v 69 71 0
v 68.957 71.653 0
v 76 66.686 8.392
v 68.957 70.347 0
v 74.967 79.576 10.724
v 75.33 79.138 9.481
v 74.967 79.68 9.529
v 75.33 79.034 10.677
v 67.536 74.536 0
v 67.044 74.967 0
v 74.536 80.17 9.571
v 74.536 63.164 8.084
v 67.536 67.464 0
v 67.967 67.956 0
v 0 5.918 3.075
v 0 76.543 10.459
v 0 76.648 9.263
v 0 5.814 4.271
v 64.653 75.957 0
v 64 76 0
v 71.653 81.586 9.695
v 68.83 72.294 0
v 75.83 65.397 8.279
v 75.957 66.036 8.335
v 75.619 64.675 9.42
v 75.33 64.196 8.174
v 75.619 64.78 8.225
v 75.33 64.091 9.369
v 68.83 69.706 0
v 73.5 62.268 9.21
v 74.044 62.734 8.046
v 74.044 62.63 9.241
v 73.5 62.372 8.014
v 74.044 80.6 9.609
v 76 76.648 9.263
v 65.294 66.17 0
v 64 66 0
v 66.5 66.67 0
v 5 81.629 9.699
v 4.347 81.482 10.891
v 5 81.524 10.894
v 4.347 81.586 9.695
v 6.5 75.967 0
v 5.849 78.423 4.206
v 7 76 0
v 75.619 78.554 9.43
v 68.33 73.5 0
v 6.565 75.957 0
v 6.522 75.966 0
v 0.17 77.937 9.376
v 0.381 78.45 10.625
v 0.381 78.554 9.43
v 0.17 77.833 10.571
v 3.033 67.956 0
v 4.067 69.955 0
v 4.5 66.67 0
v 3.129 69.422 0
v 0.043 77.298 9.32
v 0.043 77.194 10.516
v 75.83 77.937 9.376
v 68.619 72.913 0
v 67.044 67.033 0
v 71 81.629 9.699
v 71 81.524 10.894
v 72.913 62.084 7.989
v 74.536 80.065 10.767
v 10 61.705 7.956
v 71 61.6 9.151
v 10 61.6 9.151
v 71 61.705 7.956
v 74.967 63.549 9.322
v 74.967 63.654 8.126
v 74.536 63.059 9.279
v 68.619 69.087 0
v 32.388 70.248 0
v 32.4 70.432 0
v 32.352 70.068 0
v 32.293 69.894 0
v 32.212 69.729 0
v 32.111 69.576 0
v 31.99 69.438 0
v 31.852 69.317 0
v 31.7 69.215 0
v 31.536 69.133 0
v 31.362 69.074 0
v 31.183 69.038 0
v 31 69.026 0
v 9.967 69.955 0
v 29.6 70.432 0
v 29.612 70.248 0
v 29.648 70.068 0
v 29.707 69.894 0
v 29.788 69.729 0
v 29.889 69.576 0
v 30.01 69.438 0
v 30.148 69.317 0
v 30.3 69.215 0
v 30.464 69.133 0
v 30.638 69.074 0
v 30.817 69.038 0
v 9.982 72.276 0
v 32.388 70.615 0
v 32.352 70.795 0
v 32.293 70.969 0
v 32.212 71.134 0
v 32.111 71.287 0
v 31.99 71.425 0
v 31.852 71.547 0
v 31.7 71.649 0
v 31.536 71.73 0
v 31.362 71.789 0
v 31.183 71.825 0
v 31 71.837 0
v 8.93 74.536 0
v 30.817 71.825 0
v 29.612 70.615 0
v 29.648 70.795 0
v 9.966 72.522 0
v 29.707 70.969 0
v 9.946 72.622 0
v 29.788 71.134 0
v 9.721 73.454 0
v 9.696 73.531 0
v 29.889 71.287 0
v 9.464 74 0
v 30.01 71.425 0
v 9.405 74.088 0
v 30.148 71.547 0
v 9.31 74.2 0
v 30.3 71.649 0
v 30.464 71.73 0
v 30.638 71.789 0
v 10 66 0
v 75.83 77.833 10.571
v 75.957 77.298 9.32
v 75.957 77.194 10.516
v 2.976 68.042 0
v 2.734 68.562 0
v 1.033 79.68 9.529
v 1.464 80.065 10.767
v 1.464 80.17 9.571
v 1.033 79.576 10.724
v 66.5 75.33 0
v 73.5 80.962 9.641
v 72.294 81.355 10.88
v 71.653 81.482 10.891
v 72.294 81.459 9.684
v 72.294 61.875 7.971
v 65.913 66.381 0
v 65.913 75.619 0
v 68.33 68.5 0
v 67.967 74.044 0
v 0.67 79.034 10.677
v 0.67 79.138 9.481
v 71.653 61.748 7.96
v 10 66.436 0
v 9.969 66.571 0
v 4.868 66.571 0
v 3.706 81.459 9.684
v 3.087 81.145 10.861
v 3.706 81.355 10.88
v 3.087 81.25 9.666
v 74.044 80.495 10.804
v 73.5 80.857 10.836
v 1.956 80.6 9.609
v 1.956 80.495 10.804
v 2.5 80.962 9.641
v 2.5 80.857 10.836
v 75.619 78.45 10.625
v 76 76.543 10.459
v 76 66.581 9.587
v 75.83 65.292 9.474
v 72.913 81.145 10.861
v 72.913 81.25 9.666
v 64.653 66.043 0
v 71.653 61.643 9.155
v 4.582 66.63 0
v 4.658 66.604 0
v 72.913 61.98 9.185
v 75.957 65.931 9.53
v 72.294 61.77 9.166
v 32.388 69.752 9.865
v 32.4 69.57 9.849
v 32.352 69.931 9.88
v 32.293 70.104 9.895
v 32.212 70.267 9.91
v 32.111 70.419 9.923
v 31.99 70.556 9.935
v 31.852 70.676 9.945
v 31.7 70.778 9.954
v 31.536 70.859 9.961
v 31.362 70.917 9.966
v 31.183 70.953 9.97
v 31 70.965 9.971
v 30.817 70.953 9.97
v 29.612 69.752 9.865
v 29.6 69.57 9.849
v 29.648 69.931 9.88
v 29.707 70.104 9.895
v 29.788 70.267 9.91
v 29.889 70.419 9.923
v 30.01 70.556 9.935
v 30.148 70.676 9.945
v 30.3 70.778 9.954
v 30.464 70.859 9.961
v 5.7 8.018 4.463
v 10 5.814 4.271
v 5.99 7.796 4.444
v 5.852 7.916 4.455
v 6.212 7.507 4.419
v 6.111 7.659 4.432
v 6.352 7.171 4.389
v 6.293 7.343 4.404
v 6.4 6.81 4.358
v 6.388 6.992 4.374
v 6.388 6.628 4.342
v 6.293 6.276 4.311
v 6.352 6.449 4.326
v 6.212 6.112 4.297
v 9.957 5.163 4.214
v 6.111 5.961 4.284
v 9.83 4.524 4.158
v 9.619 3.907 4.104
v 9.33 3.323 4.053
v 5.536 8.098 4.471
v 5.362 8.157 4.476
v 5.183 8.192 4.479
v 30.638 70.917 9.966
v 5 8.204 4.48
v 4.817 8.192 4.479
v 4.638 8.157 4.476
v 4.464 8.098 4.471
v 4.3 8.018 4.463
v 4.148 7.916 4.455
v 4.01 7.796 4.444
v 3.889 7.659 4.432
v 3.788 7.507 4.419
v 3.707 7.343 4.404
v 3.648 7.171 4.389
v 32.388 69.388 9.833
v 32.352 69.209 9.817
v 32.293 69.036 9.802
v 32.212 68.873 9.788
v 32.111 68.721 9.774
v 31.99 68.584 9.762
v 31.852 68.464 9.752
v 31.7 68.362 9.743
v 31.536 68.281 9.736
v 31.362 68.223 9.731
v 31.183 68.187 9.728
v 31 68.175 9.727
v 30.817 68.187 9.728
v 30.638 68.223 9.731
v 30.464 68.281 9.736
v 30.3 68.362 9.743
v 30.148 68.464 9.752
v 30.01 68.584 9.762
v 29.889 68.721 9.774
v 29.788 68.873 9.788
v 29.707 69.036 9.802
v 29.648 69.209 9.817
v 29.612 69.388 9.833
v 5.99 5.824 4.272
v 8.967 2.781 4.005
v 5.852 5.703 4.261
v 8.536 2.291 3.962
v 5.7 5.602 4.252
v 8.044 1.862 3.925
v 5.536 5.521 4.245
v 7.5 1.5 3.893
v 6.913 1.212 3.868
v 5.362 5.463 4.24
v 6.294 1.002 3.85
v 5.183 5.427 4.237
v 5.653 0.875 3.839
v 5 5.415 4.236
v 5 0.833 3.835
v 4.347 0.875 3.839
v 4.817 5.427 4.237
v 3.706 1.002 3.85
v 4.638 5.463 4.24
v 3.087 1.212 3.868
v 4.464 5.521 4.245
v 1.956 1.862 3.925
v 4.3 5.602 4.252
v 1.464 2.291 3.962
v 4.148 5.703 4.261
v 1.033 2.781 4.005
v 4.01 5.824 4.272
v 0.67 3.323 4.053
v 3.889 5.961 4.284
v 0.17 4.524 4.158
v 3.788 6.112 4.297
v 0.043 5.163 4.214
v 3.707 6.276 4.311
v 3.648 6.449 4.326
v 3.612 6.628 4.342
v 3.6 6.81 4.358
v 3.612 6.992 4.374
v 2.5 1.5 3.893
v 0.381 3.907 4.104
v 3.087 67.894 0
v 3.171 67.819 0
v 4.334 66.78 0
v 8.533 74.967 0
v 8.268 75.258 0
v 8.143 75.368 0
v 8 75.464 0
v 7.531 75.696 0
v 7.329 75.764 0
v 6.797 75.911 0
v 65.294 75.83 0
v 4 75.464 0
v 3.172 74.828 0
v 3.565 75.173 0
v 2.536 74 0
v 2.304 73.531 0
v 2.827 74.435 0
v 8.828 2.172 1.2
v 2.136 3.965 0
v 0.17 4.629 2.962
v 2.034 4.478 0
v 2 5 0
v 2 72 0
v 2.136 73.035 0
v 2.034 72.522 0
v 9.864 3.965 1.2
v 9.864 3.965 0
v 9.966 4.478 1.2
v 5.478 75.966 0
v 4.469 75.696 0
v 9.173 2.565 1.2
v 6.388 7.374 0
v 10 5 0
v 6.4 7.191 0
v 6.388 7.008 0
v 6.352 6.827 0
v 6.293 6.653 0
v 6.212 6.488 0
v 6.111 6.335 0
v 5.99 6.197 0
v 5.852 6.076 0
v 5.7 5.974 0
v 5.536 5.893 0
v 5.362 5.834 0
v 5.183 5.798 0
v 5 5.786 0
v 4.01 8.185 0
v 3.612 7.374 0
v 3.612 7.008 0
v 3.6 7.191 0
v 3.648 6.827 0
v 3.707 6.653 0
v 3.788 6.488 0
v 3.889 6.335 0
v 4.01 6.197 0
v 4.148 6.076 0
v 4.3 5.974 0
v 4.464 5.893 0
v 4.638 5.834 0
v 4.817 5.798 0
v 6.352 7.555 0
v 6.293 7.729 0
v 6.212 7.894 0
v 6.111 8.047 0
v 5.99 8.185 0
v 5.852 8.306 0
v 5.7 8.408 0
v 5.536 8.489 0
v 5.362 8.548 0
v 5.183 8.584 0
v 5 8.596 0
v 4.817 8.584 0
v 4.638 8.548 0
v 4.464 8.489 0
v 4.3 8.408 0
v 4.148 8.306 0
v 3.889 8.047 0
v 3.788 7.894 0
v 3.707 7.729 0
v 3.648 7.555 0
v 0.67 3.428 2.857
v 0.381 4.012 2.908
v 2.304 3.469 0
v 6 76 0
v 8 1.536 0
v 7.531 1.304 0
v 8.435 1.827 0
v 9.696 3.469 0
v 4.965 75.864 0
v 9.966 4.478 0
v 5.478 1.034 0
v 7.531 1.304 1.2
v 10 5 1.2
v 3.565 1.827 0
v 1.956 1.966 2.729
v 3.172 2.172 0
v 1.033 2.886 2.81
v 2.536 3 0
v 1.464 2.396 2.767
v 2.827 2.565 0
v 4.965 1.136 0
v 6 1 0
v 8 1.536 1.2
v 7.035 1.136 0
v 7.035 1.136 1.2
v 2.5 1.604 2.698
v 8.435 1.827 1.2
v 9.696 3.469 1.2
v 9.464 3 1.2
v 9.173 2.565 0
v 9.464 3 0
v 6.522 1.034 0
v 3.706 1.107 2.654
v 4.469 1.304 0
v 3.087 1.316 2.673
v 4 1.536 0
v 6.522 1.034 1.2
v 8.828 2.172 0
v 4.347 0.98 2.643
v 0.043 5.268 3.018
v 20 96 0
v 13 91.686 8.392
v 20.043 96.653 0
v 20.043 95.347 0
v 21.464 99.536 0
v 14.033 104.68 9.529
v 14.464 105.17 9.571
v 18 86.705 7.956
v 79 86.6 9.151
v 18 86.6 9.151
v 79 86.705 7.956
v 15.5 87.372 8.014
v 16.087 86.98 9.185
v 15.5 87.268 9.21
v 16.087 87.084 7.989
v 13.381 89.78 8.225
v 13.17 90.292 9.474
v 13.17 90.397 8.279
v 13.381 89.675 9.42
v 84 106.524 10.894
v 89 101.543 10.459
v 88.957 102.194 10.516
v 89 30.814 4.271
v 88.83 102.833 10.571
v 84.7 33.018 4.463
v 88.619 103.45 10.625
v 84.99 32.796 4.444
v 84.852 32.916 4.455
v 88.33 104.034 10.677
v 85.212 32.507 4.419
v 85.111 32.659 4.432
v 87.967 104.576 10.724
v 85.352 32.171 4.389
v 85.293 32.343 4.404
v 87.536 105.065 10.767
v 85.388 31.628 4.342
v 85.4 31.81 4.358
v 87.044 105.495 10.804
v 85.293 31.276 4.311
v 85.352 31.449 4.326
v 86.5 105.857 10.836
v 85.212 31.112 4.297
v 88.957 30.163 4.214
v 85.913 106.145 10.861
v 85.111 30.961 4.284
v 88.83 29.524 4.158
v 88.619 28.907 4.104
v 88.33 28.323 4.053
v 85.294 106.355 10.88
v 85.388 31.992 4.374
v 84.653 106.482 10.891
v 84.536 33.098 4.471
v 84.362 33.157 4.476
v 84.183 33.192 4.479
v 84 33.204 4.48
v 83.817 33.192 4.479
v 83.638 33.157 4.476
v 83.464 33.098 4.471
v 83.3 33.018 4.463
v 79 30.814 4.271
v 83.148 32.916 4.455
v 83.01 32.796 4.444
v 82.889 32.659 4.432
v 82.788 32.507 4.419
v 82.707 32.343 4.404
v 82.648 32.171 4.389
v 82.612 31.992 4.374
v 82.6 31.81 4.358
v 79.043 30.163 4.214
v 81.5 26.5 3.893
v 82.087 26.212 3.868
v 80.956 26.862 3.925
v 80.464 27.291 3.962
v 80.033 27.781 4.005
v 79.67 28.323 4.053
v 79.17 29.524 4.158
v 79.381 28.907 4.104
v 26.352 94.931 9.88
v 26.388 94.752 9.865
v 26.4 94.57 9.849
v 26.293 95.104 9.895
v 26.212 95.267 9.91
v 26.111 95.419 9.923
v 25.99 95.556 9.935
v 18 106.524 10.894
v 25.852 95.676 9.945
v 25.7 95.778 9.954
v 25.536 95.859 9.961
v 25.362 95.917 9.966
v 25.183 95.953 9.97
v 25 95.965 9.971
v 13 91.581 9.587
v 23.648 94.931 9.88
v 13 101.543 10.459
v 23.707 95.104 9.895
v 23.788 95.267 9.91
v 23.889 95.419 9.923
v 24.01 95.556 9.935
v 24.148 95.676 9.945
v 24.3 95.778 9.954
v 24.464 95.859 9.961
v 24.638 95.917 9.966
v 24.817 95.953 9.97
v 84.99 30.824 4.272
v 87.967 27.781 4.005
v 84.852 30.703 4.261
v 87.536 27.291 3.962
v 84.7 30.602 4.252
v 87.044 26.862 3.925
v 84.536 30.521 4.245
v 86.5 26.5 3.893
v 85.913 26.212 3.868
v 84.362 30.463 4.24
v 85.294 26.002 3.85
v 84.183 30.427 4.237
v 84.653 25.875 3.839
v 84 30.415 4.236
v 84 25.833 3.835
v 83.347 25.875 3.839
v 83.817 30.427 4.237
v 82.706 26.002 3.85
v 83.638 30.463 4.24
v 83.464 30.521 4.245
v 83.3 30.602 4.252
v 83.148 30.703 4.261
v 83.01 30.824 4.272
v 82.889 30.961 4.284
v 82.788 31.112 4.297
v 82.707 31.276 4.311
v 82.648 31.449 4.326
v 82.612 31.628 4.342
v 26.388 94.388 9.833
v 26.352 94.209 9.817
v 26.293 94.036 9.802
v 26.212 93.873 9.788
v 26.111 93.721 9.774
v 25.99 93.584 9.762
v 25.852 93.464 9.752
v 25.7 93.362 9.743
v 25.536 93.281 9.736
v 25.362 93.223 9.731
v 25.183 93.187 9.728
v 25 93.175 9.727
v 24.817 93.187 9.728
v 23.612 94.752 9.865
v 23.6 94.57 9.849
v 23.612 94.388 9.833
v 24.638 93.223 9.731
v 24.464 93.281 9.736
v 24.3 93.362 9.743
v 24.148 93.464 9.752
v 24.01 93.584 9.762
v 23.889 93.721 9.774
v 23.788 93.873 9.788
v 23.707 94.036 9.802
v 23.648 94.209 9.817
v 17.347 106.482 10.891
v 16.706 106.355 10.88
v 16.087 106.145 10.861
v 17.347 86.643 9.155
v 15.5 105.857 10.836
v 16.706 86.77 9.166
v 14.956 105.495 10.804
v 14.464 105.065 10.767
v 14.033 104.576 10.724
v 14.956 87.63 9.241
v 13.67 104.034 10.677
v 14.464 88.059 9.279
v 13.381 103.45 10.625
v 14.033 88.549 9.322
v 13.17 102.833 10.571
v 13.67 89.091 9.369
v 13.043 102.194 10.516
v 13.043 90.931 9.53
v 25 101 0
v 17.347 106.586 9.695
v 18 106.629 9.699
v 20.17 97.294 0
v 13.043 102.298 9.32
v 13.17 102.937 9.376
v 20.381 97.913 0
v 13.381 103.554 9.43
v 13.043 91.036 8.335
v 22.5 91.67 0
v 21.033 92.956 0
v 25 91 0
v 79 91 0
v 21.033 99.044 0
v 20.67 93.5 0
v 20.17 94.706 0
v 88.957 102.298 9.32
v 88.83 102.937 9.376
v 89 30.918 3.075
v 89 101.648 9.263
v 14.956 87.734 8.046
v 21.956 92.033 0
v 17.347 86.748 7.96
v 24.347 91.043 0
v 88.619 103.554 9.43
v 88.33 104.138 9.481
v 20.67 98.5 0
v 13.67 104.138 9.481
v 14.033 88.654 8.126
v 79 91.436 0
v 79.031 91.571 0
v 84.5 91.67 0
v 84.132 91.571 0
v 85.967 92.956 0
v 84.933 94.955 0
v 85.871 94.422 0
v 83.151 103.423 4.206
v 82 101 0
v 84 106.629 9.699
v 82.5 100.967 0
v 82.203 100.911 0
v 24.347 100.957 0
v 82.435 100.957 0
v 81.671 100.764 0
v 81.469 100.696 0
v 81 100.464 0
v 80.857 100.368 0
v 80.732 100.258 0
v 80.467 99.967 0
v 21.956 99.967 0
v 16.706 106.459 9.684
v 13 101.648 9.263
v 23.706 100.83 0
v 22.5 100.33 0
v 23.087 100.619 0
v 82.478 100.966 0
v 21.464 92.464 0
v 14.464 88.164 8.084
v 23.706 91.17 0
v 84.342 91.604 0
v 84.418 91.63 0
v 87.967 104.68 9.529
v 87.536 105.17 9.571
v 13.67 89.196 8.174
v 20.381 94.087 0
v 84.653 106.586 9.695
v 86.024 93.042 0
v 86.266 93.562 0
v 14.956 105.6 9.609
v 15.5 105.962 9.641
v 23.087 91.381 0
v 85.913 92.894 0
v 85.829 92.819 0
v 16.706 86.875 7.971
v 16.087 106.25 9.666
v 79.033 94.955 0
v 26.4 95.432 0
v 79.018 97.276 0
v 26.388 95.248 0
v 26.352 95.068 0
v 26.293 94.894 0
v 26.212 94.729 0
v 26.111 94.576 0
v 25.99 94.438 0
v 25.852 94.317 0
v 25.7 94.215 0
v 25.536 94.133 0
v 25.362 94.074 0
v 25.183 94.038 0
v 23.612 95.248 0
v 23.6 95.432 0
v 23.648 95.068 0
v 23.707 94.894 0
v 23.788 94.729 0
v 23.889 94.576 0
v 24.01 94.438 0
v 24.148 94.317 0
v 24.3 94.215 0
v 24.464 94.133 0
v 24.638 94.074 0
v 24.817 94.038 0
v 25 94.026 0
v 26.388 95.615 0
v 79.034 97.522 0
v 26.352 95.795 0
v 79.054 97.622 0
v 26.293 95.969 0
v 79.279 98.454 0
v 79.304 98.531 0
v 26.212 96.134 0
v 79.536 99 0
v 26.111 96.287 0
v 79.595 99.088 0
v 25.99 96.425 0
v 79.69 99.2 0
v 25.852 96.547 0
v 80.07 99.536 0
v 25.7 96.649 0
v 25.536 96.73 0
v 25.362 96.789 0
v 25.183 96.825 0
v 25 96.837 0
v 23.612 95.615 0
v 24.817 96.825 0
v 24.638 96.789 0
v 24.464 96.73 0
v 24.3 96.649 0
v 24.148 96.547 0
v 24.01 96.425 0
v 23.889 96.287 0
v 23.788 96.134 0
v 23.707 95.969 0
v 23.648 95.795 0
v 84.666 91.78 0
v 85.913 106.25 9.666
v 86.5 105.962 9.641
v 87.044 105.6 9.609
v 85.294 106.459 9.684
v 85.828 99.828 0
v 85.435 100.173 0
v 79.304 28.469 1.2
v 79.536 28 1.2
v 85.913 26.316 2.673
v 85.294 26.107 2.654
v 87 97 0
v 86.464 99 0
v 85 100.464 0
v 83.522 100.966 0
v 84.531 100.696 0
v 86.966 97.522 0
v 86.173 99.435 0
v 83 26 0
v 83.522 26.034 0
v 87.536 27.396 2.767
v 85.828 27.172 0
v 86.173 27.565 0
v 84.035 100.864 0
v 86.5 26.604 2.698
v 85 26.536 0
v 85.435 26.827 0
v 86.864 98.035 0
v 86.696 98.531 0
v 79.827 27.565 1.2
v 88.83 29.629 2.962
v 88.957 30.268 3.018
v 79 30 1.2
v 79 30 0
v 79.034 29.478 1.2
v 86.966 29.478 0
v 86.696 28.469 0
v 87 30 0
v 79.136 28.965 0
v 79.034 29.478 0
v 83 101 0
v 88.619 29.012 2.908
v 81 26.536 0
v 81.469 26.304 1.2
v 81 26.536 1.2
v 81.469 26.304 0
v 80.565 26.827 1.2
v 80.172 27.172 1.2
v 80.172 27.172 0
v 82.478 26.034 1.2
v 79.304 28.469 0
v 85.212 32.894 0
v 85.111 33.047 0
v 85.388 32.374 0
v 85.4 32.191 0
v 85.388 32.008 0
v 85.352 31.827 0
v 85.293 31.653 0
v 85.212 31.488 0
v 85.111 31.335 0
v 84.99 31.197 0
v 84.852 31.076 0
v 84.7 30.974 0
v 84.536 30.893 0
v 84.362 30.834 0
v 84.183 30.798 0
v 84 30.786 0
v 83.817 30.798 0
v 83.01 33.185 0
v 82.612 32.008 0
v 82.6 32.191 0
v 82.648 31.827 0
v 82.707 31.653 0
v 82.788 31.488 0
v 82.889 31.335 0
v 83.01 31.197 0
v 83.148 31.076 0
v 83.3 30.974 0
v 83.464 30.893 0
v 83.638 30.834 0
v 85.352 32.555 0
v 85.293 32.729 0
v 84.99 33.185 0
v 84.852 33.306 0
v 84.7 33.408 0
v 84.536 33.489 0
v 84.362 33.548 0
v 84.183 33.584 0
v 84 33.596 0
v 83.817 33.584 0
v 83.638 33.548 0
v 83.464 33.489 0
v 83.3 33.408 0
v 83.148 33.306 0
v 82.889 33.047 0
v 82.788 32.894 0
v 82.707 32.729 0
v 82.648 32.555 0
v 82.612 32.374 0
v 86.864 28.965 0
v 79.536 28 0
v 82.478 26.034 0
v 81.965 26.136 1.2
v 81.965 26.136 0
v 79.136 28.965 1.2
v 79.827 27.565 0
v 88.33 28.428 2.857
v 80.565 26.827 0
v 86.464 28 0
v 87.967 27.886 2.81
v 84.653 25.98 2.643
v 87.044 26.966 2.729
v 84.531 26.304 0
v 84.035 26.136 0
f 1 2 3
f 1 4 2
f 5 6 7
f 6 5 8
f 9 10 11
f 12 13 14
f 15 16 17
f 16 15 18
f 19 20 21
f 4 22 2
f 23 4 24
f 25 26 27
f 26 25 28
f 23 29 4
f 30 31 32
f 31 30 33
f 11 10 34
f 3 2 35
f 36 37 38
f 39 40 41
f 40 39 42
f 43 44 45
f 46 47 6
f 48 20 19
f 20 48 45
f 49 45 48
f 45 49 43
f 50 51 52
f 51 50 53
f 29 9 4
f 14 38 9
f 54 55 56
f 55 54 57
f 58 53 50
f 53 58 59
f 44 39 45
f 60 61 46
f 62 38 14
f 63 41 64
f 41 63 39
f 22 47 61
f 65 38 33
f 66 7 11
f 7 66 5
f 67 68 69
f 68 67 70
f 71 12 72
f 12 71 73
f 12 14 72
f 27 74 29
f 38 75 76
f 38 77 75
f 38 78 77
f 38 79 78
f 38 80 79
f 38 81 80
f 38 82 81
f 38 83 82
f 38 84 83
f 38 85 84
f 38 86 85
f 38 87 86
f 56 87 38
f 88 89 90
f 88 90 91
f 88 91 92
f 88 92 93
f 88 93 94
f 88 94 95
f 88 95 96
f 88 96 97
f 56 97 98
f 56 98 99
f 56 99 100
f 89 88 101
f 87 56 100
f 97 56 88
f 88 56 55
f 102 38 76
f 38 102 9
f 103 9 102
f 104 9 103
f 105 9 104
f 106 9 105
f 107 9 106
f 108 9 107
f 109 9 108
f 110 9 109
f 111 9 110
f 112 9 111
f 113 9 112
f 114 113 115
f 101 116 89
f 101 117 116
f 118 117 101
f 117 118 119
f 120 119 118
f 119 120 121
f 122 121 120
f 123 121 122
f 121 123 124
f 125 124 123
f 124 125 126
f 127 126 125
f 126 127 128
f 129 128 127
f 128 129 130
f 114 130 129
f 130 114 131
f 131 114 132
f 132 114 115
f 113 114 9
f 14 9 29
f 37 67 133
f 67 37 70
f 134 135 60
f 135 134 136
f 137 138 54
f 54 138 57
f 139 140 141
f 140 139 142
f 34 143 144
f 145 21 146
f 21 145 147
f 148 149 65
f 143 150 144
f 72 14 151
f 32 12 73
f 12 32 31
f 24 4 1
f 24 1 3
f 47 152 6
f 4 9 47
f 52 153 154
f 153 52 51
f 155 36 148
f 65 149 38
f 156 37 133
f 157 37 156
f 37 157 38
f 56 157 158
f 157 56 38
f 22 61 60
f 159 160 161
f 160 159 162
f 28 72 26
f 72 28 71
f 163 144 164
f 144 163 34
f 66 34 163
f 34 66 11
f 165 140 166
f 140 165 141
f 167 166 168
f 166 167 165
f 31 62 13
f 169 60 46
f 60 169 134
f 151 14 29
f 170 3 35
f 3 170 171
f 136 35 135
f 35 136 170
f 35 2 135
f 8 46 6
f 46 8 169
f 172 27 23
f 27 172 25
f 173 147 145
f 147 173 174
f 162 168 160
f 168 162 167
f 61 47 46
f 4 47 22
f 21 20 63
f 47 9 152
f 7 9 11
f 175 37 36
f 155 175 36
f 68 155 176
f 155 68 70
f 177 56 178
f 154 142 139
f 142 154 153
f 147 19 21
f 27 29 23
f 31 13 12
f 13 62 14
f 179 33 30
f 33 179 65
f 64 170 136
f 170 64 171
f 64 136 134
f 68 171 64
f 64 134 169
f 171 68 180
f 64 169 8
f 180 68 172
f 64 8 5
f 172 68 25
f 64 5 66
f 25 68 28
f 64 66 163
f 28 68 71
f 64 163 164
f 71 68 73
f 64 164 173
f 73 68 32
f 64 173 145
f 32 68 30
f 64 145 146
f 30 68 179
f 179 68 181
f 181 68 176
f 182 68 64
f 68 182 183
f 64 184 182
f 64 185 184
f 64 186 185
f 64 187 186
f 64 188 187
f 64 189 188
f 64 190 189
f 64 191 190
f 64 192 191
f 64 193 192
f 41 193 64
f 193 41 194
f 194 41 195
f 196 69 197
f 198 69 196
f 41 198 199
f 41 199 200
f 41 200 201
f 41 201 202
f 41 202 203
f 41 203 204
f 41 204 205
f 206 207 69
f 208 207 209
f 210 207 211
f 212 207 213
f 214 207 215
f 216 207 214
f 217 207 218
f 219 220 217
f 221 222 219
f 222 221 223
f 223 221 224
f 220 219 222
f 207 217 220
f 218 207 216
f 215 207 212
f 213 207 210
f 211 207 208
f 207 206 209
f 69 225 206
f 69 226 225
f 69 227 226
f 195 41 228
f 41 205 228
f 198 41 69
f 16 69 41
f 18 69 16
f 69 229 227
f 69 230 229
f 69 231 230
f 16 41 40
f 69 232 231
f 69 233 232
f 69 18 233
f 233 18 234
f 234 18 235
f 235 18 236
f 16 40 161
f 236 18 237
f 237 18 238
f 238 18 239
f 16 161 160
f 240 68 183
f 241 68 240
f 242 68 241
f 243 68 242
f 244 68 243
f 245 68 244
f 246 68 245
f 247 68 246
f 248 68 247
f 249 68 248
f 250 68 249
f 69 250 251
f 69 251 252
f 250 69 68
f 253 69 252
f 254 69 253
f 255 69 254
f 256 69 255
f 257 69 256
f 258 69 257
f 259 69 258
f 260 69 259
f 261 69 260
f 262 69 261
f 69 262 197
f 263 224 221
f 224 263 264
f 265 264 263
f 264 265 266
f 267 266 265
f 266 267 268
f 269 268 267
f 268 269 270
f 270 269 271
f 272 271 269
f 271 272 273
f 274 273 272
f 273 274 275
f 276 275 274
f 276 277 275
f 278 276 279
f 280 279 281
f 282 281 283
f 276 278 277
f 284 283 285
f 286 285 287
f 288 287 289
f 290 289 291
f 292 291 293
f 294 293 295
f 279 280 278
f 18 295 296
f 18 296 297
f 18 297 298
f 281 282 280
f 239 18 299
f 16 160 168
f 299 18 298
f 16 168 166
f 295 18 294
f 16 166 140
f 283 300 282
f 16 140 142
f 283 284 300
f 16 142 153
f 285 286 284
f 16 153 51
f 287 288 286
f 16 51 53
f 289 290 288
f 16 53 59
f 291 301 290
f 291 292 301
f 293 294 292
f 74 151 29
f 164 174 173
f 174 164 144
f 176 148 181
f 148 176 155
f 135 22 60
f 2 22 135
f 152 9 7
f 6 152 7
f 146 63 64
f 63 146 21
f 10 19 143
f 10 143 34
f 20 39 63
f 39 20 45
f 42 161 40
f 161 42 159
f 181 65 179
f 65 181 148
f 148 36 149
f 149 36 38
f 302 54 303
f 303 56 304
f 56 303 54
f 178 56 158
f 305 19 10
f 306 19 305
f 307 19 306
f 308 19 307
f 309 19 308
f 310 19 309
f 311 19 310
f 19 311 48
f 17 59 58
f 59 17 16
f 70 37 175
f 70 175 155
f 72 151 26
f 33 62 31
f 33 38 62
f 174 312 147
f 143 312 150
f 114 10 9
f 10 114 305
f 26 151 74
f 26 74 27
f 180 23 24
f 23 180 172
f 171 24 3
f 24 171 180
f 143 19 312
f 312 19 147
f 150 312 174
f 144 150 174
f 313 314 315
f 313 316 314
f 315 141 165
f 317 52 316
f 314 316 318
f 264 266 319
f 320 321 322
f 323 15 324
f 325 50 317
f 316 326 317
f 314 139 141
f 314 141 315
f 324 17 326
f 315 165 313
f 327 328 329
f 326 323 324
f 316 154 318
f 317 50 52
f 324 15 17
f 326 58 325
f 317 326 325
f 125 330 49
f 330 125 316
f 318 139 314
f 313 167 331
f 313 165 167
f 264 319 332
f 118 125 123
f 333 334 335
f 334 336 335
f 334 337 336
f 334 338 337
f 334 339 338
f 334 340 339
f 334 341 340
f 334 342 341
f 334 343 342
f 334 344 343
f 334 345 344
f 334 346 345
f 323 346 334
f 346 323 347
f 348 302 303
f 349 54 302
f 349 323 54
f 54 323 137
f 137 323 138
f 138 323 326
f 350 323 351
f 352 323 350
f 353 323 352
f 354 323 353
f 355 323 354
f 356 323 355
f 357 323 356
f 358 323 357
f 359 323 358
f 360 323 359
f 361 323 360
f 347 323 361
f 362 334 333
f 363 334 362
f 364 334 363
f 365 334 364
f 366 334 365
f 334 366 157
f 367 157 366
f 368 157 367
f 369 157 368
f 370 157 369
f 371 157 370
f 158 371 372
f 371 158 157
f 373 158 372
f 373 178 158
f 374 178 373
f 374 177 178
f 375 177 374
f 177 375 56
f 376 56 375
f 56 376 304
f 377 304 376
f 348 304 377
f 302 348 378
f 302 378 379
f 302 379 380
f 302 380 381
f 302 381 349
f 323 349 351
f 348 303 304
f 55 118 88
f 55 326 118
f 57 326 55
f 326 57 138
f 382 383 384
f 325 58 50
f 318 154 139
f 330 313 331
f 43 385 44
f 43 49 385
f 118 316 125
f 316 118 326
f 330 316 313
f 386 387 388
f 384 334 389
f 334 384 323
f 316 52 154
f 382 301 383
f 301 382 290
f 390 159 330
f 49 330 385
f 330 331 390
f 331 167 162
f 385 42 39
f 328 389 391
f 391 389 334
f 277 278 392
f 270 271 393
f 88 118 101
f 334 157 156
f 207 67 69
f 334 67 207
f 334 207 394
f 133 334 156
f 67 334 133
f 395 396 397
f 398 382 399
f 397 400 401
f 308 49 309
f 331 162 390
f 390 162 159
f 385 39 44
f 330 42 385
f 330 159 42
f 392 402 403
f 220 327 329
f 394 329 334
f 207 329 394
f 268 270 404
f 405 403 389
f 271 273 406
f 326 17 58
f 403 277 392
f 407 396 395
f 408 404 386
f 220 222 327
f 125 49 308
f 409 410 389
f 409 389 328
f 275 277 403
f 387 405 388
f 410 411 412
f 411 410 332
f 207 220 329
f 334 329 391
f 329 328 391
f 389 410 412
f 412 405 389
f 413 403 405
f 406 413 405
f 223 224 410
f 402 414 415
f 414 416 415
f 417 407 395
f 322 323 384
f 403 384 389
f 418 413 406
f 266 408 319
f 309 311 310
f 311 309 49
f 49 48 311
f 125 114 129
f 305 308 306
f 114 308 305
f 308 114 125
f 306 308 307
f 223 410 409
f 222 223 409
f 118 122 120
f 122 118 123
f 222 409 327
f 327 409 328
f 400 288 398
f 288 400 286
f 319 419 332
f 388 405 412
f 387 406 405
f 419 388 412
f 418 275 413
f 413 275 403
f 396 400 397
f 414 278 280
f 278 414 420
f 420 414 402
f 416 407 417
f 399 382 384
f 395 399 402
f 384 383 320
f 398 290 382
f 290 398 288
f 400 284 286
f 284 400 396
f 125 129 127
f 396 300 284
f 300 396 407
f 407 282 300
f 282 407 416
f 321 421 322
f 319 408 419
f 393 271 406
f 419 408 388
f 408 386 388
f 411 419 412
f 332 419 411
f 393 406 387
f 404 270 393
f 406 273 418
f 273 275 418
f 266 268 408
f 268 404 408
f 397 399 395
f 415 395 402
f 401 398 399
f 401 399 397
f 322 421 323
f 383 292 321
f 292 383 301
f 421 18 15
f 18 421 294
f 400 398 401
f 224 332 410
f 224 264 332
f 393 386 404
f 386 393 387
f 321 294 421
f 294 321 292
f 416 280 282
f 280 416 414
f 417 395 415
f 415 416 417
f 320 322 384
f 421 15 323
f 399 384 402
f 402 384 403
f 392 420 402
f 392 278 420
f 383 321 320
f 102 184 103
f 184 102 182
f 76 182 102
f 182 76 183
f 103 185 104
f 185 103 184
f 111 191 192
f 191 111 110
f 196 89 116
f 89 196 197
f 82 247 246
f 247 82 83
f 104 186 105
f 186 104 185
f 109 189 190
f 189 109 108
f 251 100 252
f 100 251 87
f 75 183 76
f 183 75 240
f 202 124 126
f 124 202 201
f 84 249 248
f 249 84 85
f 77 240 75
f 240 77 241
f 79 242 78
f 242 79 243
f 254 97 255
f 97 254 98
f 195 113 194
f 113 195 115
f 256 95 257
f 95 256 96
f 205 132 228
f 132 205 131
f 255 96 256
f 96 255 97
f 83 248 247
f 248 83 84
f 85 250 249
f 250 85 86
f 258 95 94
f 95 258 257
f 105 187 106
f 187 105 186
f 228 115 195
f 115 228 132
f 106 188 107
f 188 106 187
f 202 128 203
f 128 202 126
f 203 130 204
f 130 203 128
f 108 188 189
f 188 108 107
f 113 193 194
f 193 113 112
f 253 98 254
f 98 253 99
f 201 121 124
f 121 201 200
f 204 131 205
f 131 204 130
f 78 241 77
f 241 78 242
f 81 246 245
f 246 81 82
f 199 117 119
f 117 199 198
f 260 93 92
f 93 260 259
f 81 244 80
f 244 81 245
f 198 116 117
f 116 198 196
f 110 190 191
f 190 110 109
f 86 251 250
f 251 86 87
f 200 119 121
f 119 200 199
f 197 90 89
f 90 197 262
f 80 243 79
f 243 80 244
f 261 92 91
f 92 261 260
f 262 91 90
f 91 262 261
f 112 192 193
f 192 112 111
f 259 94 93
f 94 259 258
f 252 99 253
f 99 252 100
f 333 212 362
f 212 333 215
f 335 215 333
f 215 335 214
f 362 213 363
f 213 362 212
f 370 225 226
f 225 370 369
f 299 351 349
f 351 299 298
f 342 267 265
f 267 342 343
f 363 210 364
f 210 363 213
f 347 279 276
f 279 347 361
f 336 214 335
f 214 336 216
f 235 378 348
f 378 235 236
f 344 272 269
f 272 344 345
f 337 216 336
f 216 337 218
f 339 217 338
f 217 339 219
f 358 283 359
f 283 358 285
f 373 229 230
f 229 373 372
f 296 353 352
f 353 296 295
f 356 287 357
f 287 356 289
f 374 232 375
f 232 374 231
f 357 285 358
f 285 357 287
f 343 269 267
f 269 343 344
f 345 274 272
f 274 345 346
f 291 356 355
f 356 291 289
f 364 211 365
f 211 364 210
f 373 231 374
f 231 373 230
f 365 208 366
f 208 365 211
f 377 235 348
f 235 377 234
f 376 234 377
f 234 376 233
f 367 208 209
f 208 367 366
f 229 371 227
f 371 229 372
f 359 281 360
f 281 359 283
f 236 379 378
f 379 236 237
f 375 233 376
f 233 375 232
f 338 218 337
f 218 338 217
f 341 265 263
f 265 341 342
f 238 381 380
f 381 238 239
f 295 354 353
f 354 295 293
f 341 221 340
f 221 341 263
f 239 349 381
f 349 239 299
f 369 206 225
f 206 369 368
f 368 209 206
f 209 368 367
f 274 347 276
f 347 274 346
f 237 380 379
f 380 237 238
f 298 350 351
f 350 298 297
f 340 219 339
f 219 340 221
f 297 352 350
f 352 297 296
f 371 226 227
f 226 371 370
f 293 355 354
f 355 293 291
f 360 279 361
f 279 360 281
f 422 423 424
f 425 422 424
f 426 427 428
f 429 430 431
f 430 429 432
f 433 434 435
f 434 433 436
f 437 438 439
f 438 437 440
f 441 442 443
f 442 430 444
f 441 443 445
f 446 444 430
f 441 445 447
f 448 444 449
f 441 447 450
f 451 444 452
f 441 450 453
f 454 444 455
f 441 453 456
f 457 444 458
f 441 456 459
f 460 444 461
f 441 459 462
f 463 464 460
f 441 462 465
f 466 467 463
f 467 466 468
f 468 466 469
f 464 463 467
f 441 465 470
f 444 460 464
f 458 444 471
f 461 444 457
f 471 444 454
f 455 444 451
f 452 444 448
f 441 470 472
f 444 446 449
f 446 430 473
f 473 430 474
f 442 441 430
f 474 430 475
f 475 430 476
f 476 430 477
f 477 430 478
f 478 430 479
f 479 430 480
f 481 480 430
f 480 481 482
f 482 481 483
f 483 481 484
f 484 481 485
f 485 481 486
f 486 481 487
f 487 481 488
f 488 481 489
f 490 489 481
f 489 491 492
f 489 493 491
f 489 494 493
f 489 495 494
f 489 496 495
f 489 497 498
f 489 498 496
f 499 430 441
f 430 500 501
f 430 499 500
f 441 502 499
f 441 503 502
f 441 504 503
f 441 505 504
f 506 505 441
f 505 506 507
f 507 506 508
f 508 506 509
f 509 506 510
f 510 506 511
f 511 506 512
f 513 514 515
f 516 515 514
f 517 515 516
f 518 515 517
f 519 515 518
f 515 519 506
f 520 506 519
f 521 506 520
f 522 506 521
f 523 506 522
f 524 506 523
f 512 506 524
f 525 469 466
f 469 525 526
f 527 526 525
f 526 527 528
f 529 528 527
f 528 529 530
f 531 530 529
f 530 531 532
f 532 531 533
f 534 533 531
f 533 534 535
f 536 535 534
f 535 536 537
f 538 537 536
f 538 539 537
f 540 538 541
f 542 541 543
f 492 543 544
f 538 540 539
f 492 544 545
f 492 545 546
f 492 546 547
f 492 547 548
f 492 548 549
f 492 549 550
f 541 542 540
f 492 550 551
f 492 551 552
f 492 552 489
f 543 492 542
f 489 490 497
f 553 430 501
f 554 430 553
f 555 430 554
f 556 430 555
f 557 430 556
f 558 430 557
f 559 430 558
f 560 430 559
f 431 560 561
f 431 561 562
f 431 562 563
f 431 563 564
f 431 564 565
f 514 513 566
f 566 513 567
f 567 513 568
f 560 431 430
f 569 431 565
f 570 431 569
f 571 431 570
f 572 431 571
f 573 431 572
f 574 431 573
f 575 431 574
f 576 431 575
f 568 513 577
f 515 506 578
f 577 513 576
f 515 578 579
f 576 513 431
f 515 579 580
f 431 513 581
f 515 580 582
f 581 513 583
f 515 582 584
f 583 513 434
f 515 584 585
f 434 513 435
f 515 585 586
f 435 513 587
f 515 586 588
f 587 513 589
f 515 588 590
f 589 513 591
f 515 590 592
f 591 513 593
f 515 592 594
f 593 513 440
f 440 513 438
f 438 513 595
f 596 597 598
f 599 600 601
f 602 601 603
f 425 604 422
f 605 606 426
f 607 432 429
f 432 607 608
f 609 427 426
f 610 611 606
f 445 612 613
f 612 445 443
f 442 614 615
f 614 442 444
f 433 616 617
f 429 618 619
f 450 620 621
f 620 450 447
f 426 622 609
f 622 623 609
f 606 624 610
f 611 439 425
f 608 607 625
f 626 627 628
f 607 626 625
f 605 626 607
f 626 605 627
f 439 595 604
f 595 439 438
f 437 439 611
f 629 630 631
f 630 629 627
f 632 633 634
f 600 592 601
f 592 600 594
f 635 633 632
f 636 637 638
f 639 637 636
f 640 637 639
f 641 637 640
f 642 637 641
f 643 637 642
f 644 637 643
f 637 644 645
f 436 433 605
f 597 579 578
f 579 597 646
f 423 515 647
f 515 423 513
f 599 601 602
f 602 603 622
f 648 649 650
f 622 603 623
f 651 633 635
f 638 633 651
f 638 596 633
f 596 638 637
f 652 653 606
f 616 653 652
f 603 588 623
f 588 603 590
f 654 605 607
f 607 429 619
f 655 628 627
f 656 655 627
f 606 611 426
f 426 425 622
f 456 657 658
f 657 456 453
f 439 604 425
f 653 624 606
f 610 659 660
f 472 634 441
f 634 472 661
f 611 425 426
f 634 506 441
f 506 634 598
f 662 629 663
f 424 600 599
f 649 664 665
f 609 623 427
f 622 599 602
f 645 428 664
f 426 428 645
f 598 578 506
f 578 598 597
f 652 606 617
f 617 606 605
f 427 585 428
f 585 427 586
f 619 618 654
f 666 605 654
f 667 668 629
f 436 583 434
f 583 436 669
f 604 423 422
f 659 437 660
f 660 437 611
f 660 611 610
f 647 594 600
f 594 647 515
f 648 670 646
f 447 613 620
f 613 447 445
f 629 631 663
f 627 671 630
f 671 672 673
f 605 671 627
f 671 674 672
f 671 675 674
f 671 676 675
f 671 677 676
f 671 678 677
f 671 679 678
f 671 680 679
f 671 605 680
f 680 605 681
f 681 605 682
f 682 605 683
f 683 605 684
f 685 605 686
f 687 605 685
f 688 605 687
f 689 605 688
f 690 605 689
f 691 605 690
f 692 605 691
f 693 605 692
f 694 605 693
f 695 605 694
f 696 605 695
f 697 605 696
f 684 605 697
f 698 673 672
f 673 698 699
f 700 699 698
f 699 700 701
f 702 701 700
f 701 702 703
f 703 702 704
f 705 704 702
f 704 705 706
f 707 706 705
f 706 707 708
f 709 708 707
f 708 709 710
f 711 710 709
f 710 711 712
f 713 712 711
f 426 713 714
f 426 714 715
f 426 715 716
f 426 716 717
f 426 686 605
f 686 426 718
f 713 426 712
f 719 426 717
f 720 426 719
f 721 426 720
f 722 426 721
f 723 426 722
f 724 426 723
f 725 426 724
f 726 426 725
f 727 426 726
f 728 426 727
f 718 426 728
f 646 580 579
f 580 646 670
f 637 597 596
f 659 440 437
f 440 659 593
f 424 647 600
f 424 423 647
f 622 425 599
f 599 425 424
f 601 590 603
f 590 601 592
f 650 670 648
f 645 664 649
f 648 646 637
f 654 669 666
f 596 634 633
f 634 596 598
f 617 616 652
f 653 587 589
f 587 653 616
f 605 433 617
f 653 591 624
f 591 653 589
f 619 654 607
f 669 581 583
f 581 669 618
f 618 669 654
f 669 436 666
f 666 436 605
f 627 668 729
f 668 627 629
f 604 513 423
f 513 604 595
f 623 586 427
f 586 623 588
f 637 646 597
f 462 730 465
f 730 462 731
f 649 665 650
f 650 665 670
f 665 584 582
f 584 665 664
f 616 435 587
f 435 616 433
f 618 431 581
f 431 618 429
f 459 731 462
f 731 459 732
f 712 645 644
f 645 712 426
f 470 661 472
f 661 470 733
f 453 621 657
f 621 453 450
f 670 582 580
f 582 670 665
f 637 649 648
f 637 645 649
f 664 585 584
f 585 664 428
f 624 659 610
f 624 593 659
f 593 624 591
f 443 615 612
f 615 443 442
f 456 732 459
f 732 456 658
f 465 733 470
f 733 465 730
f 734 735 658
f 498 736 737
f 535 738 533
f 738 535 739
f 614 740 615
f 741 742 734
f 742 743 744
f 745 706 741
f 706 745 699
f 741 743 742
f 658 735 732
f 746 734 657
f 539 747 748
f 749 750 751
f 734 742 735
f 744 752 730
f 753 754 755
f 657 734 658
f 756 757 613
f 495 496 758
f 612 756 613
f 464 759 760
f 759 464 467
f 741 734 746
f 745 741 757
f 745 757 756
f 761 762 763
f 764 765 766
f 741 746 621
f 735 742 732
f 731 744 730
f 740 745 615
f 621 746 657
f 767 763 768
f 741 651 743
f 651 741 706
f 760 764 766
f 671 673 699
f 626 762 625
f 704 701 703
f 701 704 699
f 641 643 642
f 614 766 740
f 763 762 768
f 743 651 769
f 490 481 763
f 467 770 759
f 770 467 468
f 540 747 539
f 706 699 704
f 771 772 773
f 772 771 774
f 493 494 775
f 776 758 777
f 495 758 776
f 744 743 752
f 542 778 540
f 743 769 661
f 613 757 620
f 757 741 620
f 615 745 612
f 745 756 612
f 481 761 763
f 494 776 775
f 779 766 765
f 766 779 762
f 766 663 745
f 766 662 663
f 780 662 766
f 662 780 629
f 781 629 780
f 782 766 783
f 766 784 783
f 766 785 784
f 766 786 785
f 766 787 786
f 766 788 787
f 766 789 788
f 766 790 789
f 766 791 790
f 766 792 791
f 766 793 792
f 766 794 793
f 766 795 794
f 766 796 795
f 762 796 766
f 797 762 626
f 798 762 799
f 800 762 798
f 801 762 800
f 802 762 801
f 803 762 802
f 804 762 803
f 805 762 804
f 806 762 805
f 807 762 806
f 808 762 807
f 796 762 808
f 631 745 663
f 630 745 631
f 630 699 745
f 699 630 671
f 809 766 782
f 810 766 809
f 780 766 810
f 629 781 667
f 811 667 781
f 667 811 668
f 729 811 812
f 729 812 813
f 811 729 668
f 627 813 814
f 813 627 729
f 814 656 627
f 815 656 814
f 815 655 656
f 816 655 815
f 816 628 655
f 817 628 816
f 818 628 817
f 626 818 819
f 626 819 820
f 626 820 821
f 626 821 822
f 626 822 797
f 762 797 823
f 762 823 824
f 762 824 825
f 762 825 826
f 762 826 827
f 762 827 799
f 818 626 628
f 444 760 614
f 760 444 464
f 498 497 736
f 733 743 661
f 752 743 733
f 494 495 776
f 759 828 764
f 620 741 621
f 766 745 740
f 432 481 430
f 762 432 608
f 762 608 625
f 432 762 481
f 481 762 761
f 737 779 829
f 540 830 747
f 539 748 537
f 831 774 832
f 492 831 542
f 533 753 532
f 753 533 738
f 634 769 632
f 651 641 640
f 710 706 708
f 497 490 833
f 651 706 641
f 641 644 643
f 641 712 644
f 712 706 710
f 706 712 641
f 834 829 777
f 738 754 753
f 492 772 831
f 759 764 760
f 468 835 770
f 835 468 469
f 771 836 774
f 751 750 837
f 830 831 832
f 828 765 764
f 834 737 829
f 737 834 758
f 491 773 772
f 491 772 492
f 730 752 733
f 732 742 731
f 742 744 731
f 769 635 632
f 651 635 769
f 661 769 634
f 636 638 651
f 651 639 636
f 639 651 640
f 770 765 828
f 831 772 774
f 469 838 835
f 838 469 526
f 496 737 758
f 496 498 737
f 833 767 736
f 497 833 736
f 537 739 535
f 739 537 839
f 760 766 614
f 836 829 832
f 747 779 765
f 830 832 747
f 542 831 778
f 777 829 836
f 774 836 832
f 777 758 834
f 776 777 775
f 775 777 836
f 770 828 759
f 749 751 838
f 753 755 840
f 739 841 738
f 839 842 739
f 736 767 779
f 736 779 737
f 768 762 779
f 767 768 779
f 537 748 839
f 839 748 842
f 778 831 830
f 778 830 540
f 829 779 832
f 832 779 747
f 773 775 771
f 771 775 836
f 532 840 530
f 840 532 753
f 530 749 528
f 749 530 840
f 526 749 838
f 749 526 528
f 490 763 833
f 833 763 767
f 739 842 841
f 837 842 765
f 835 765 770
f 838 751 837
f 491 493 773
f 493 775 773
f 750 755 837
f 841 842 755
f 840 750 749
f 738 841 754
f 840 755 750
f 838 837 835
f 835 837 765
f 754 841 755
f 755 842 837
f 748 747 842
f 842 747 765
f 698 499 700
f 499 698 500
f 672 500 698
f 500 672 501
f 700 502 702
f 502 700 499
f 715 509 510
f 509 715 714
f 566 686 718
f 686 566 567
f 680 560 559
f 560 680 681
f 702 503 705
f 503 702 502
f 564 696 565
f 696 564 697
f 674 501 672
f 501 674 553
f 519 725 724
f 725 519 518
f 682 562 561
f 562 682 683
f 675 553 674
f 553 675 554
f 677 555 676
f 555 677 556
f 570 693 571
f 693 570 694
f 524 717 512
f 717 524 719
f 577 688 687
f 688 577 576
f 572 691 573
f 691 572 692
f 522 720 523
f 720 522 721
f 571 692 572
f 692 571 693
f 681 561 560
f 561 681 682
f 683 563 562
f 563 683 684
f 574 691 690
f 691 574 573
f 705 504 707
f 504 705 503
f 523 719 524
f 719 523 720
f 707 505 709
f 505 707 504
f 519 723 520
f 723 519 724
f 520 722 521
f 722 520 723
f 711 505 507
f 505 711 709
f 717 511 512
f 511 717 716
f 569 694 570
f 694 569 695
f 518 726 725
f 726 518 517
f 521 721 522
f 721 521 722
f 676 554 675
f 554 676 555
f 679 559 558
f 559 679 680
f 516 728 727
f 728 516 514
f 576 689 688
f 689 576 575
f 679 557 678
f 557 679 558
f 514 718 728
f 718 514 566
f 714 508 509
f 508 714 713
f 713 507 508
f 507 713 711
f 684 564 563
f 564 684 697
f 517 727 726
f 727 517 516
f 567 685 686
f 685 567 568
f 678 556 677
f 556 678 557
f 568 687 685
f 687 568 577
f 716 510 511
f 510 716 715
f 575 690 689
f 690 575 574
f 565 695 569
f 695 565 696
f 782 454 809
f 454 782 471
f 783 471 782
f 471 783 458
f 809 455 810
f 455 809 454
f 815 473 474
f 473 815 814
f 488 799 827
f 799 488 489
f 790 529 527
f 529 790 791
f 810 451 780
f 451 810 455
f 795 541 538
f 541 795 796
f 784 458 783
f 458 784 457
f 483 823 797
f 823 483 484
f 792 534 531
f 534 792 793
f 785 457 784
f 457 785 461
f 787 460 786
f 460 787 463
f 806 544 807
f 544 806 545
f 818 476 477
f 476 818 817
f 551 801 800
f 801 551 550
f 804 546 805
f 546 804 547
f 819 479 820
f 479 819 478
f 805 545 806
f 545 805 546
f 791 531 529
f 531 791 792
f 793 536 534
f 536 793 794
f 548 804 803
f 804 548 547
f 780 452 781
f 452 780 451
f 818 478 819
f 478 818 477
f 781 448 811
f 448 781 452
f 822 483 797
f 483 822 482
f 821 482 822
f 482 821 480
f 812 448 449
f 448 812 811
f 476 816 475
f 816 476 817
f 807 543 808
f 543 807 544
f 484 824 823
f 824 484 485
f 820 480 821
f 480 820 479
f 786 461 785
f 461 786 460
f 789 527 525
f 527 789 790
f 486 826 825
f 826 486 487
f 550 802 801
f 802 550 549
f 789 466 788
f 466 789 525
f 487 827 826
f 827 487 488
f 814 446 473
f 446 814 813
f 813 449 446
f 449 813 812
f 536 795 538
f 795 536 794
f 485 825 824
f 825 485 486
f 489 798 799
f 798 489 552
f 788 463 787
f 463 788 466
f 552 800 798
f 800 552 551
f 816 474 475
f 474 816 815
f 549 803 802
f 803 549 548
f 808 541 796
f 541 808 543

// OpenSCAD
// file: feet.scad
e=.001;
$fn=48;
padding=5;

dim = [ 357, 125, 10 ] ;

holes = [ [31, dim.y-12], [dim.x-64, dim.y-12], [ 5, 50 ], [dim.x-5, 50 ] ] ;

r = 5;

bottom = 1.2;
screw_hole_d = 2.8;

angle = 5;

module do_center(dim, center)
{
    if (center)
        translate(-dim/2)
            children();
    else
        children();
}
 
module rounded_box(dim, r, center=false)
{
    do_center(dim, center)
    hull()
    {
        for (x=[r,dim.x-r])
        for (y=[r,dim.y-r])
        translate([x,y,0])
        cylinder(h=dim.z,r=r);
    }
}

module preview()
{
	if ($preview) children();
}


module at_holes()
{
	for (pos=holes)
        translate([pos.x, pos.y, 0])
            children();
}

module reflect_x(x)
{
	translate([x,0,0])
	scale([-1,1,1])
	translate([-x,0,0])
	children();
}

module mirror_x(x)
{
	children();
	reflect_x(x)
	children();
}


module feet()
{

	difference()
	{
	union()
	{
		mirror_x(dim.x/2)
		hull()
		{
		rotate([-angle,0,0])
		translate([2,dim.y-16,0])
		rounded_box([67, 10, bottom], 5);
		translate([0,dim.y-20,-bottom])
		rounded_box([76, 20, bottom], r);
		}

		mirror_x(dim.x/2)
		hull()
		{
		rotate([-angle,0,0])
		translate([2,dim.y-81,0])
		rounded_box([8, 75, bottom], 4);
		translate([0,dim.y-81,-bottom])
		rounded_box([10, 81, bottom], r);
		}
	}

	at_holes() translate([0,0,-20+e]) cylinder(d=screw_hole_d, h=20);
	}
}

module left_foot()
{
	intersection()
	{
	translate([-5,-5,-25])
	cube([dim.x/2+5,dim.y+10, 30]);
	feet();
	}
}


module right_foot()
{
	intersection()
	{
	reflect_x(dim.x/2)
	translate([-5,-5,-25])
	cube([dim.x/2+5,dim.y+10, 30]);
	feet();
	}
}

preview()
{
left_foot();
right_foot();
}
// main file
use <feet.scad>;


translate([0,-43,0])
{
rotate( [5,0,0] )
left_foot();

translate([-268,25,0])
rotate( [5,0,0] )
right_foot();
}
